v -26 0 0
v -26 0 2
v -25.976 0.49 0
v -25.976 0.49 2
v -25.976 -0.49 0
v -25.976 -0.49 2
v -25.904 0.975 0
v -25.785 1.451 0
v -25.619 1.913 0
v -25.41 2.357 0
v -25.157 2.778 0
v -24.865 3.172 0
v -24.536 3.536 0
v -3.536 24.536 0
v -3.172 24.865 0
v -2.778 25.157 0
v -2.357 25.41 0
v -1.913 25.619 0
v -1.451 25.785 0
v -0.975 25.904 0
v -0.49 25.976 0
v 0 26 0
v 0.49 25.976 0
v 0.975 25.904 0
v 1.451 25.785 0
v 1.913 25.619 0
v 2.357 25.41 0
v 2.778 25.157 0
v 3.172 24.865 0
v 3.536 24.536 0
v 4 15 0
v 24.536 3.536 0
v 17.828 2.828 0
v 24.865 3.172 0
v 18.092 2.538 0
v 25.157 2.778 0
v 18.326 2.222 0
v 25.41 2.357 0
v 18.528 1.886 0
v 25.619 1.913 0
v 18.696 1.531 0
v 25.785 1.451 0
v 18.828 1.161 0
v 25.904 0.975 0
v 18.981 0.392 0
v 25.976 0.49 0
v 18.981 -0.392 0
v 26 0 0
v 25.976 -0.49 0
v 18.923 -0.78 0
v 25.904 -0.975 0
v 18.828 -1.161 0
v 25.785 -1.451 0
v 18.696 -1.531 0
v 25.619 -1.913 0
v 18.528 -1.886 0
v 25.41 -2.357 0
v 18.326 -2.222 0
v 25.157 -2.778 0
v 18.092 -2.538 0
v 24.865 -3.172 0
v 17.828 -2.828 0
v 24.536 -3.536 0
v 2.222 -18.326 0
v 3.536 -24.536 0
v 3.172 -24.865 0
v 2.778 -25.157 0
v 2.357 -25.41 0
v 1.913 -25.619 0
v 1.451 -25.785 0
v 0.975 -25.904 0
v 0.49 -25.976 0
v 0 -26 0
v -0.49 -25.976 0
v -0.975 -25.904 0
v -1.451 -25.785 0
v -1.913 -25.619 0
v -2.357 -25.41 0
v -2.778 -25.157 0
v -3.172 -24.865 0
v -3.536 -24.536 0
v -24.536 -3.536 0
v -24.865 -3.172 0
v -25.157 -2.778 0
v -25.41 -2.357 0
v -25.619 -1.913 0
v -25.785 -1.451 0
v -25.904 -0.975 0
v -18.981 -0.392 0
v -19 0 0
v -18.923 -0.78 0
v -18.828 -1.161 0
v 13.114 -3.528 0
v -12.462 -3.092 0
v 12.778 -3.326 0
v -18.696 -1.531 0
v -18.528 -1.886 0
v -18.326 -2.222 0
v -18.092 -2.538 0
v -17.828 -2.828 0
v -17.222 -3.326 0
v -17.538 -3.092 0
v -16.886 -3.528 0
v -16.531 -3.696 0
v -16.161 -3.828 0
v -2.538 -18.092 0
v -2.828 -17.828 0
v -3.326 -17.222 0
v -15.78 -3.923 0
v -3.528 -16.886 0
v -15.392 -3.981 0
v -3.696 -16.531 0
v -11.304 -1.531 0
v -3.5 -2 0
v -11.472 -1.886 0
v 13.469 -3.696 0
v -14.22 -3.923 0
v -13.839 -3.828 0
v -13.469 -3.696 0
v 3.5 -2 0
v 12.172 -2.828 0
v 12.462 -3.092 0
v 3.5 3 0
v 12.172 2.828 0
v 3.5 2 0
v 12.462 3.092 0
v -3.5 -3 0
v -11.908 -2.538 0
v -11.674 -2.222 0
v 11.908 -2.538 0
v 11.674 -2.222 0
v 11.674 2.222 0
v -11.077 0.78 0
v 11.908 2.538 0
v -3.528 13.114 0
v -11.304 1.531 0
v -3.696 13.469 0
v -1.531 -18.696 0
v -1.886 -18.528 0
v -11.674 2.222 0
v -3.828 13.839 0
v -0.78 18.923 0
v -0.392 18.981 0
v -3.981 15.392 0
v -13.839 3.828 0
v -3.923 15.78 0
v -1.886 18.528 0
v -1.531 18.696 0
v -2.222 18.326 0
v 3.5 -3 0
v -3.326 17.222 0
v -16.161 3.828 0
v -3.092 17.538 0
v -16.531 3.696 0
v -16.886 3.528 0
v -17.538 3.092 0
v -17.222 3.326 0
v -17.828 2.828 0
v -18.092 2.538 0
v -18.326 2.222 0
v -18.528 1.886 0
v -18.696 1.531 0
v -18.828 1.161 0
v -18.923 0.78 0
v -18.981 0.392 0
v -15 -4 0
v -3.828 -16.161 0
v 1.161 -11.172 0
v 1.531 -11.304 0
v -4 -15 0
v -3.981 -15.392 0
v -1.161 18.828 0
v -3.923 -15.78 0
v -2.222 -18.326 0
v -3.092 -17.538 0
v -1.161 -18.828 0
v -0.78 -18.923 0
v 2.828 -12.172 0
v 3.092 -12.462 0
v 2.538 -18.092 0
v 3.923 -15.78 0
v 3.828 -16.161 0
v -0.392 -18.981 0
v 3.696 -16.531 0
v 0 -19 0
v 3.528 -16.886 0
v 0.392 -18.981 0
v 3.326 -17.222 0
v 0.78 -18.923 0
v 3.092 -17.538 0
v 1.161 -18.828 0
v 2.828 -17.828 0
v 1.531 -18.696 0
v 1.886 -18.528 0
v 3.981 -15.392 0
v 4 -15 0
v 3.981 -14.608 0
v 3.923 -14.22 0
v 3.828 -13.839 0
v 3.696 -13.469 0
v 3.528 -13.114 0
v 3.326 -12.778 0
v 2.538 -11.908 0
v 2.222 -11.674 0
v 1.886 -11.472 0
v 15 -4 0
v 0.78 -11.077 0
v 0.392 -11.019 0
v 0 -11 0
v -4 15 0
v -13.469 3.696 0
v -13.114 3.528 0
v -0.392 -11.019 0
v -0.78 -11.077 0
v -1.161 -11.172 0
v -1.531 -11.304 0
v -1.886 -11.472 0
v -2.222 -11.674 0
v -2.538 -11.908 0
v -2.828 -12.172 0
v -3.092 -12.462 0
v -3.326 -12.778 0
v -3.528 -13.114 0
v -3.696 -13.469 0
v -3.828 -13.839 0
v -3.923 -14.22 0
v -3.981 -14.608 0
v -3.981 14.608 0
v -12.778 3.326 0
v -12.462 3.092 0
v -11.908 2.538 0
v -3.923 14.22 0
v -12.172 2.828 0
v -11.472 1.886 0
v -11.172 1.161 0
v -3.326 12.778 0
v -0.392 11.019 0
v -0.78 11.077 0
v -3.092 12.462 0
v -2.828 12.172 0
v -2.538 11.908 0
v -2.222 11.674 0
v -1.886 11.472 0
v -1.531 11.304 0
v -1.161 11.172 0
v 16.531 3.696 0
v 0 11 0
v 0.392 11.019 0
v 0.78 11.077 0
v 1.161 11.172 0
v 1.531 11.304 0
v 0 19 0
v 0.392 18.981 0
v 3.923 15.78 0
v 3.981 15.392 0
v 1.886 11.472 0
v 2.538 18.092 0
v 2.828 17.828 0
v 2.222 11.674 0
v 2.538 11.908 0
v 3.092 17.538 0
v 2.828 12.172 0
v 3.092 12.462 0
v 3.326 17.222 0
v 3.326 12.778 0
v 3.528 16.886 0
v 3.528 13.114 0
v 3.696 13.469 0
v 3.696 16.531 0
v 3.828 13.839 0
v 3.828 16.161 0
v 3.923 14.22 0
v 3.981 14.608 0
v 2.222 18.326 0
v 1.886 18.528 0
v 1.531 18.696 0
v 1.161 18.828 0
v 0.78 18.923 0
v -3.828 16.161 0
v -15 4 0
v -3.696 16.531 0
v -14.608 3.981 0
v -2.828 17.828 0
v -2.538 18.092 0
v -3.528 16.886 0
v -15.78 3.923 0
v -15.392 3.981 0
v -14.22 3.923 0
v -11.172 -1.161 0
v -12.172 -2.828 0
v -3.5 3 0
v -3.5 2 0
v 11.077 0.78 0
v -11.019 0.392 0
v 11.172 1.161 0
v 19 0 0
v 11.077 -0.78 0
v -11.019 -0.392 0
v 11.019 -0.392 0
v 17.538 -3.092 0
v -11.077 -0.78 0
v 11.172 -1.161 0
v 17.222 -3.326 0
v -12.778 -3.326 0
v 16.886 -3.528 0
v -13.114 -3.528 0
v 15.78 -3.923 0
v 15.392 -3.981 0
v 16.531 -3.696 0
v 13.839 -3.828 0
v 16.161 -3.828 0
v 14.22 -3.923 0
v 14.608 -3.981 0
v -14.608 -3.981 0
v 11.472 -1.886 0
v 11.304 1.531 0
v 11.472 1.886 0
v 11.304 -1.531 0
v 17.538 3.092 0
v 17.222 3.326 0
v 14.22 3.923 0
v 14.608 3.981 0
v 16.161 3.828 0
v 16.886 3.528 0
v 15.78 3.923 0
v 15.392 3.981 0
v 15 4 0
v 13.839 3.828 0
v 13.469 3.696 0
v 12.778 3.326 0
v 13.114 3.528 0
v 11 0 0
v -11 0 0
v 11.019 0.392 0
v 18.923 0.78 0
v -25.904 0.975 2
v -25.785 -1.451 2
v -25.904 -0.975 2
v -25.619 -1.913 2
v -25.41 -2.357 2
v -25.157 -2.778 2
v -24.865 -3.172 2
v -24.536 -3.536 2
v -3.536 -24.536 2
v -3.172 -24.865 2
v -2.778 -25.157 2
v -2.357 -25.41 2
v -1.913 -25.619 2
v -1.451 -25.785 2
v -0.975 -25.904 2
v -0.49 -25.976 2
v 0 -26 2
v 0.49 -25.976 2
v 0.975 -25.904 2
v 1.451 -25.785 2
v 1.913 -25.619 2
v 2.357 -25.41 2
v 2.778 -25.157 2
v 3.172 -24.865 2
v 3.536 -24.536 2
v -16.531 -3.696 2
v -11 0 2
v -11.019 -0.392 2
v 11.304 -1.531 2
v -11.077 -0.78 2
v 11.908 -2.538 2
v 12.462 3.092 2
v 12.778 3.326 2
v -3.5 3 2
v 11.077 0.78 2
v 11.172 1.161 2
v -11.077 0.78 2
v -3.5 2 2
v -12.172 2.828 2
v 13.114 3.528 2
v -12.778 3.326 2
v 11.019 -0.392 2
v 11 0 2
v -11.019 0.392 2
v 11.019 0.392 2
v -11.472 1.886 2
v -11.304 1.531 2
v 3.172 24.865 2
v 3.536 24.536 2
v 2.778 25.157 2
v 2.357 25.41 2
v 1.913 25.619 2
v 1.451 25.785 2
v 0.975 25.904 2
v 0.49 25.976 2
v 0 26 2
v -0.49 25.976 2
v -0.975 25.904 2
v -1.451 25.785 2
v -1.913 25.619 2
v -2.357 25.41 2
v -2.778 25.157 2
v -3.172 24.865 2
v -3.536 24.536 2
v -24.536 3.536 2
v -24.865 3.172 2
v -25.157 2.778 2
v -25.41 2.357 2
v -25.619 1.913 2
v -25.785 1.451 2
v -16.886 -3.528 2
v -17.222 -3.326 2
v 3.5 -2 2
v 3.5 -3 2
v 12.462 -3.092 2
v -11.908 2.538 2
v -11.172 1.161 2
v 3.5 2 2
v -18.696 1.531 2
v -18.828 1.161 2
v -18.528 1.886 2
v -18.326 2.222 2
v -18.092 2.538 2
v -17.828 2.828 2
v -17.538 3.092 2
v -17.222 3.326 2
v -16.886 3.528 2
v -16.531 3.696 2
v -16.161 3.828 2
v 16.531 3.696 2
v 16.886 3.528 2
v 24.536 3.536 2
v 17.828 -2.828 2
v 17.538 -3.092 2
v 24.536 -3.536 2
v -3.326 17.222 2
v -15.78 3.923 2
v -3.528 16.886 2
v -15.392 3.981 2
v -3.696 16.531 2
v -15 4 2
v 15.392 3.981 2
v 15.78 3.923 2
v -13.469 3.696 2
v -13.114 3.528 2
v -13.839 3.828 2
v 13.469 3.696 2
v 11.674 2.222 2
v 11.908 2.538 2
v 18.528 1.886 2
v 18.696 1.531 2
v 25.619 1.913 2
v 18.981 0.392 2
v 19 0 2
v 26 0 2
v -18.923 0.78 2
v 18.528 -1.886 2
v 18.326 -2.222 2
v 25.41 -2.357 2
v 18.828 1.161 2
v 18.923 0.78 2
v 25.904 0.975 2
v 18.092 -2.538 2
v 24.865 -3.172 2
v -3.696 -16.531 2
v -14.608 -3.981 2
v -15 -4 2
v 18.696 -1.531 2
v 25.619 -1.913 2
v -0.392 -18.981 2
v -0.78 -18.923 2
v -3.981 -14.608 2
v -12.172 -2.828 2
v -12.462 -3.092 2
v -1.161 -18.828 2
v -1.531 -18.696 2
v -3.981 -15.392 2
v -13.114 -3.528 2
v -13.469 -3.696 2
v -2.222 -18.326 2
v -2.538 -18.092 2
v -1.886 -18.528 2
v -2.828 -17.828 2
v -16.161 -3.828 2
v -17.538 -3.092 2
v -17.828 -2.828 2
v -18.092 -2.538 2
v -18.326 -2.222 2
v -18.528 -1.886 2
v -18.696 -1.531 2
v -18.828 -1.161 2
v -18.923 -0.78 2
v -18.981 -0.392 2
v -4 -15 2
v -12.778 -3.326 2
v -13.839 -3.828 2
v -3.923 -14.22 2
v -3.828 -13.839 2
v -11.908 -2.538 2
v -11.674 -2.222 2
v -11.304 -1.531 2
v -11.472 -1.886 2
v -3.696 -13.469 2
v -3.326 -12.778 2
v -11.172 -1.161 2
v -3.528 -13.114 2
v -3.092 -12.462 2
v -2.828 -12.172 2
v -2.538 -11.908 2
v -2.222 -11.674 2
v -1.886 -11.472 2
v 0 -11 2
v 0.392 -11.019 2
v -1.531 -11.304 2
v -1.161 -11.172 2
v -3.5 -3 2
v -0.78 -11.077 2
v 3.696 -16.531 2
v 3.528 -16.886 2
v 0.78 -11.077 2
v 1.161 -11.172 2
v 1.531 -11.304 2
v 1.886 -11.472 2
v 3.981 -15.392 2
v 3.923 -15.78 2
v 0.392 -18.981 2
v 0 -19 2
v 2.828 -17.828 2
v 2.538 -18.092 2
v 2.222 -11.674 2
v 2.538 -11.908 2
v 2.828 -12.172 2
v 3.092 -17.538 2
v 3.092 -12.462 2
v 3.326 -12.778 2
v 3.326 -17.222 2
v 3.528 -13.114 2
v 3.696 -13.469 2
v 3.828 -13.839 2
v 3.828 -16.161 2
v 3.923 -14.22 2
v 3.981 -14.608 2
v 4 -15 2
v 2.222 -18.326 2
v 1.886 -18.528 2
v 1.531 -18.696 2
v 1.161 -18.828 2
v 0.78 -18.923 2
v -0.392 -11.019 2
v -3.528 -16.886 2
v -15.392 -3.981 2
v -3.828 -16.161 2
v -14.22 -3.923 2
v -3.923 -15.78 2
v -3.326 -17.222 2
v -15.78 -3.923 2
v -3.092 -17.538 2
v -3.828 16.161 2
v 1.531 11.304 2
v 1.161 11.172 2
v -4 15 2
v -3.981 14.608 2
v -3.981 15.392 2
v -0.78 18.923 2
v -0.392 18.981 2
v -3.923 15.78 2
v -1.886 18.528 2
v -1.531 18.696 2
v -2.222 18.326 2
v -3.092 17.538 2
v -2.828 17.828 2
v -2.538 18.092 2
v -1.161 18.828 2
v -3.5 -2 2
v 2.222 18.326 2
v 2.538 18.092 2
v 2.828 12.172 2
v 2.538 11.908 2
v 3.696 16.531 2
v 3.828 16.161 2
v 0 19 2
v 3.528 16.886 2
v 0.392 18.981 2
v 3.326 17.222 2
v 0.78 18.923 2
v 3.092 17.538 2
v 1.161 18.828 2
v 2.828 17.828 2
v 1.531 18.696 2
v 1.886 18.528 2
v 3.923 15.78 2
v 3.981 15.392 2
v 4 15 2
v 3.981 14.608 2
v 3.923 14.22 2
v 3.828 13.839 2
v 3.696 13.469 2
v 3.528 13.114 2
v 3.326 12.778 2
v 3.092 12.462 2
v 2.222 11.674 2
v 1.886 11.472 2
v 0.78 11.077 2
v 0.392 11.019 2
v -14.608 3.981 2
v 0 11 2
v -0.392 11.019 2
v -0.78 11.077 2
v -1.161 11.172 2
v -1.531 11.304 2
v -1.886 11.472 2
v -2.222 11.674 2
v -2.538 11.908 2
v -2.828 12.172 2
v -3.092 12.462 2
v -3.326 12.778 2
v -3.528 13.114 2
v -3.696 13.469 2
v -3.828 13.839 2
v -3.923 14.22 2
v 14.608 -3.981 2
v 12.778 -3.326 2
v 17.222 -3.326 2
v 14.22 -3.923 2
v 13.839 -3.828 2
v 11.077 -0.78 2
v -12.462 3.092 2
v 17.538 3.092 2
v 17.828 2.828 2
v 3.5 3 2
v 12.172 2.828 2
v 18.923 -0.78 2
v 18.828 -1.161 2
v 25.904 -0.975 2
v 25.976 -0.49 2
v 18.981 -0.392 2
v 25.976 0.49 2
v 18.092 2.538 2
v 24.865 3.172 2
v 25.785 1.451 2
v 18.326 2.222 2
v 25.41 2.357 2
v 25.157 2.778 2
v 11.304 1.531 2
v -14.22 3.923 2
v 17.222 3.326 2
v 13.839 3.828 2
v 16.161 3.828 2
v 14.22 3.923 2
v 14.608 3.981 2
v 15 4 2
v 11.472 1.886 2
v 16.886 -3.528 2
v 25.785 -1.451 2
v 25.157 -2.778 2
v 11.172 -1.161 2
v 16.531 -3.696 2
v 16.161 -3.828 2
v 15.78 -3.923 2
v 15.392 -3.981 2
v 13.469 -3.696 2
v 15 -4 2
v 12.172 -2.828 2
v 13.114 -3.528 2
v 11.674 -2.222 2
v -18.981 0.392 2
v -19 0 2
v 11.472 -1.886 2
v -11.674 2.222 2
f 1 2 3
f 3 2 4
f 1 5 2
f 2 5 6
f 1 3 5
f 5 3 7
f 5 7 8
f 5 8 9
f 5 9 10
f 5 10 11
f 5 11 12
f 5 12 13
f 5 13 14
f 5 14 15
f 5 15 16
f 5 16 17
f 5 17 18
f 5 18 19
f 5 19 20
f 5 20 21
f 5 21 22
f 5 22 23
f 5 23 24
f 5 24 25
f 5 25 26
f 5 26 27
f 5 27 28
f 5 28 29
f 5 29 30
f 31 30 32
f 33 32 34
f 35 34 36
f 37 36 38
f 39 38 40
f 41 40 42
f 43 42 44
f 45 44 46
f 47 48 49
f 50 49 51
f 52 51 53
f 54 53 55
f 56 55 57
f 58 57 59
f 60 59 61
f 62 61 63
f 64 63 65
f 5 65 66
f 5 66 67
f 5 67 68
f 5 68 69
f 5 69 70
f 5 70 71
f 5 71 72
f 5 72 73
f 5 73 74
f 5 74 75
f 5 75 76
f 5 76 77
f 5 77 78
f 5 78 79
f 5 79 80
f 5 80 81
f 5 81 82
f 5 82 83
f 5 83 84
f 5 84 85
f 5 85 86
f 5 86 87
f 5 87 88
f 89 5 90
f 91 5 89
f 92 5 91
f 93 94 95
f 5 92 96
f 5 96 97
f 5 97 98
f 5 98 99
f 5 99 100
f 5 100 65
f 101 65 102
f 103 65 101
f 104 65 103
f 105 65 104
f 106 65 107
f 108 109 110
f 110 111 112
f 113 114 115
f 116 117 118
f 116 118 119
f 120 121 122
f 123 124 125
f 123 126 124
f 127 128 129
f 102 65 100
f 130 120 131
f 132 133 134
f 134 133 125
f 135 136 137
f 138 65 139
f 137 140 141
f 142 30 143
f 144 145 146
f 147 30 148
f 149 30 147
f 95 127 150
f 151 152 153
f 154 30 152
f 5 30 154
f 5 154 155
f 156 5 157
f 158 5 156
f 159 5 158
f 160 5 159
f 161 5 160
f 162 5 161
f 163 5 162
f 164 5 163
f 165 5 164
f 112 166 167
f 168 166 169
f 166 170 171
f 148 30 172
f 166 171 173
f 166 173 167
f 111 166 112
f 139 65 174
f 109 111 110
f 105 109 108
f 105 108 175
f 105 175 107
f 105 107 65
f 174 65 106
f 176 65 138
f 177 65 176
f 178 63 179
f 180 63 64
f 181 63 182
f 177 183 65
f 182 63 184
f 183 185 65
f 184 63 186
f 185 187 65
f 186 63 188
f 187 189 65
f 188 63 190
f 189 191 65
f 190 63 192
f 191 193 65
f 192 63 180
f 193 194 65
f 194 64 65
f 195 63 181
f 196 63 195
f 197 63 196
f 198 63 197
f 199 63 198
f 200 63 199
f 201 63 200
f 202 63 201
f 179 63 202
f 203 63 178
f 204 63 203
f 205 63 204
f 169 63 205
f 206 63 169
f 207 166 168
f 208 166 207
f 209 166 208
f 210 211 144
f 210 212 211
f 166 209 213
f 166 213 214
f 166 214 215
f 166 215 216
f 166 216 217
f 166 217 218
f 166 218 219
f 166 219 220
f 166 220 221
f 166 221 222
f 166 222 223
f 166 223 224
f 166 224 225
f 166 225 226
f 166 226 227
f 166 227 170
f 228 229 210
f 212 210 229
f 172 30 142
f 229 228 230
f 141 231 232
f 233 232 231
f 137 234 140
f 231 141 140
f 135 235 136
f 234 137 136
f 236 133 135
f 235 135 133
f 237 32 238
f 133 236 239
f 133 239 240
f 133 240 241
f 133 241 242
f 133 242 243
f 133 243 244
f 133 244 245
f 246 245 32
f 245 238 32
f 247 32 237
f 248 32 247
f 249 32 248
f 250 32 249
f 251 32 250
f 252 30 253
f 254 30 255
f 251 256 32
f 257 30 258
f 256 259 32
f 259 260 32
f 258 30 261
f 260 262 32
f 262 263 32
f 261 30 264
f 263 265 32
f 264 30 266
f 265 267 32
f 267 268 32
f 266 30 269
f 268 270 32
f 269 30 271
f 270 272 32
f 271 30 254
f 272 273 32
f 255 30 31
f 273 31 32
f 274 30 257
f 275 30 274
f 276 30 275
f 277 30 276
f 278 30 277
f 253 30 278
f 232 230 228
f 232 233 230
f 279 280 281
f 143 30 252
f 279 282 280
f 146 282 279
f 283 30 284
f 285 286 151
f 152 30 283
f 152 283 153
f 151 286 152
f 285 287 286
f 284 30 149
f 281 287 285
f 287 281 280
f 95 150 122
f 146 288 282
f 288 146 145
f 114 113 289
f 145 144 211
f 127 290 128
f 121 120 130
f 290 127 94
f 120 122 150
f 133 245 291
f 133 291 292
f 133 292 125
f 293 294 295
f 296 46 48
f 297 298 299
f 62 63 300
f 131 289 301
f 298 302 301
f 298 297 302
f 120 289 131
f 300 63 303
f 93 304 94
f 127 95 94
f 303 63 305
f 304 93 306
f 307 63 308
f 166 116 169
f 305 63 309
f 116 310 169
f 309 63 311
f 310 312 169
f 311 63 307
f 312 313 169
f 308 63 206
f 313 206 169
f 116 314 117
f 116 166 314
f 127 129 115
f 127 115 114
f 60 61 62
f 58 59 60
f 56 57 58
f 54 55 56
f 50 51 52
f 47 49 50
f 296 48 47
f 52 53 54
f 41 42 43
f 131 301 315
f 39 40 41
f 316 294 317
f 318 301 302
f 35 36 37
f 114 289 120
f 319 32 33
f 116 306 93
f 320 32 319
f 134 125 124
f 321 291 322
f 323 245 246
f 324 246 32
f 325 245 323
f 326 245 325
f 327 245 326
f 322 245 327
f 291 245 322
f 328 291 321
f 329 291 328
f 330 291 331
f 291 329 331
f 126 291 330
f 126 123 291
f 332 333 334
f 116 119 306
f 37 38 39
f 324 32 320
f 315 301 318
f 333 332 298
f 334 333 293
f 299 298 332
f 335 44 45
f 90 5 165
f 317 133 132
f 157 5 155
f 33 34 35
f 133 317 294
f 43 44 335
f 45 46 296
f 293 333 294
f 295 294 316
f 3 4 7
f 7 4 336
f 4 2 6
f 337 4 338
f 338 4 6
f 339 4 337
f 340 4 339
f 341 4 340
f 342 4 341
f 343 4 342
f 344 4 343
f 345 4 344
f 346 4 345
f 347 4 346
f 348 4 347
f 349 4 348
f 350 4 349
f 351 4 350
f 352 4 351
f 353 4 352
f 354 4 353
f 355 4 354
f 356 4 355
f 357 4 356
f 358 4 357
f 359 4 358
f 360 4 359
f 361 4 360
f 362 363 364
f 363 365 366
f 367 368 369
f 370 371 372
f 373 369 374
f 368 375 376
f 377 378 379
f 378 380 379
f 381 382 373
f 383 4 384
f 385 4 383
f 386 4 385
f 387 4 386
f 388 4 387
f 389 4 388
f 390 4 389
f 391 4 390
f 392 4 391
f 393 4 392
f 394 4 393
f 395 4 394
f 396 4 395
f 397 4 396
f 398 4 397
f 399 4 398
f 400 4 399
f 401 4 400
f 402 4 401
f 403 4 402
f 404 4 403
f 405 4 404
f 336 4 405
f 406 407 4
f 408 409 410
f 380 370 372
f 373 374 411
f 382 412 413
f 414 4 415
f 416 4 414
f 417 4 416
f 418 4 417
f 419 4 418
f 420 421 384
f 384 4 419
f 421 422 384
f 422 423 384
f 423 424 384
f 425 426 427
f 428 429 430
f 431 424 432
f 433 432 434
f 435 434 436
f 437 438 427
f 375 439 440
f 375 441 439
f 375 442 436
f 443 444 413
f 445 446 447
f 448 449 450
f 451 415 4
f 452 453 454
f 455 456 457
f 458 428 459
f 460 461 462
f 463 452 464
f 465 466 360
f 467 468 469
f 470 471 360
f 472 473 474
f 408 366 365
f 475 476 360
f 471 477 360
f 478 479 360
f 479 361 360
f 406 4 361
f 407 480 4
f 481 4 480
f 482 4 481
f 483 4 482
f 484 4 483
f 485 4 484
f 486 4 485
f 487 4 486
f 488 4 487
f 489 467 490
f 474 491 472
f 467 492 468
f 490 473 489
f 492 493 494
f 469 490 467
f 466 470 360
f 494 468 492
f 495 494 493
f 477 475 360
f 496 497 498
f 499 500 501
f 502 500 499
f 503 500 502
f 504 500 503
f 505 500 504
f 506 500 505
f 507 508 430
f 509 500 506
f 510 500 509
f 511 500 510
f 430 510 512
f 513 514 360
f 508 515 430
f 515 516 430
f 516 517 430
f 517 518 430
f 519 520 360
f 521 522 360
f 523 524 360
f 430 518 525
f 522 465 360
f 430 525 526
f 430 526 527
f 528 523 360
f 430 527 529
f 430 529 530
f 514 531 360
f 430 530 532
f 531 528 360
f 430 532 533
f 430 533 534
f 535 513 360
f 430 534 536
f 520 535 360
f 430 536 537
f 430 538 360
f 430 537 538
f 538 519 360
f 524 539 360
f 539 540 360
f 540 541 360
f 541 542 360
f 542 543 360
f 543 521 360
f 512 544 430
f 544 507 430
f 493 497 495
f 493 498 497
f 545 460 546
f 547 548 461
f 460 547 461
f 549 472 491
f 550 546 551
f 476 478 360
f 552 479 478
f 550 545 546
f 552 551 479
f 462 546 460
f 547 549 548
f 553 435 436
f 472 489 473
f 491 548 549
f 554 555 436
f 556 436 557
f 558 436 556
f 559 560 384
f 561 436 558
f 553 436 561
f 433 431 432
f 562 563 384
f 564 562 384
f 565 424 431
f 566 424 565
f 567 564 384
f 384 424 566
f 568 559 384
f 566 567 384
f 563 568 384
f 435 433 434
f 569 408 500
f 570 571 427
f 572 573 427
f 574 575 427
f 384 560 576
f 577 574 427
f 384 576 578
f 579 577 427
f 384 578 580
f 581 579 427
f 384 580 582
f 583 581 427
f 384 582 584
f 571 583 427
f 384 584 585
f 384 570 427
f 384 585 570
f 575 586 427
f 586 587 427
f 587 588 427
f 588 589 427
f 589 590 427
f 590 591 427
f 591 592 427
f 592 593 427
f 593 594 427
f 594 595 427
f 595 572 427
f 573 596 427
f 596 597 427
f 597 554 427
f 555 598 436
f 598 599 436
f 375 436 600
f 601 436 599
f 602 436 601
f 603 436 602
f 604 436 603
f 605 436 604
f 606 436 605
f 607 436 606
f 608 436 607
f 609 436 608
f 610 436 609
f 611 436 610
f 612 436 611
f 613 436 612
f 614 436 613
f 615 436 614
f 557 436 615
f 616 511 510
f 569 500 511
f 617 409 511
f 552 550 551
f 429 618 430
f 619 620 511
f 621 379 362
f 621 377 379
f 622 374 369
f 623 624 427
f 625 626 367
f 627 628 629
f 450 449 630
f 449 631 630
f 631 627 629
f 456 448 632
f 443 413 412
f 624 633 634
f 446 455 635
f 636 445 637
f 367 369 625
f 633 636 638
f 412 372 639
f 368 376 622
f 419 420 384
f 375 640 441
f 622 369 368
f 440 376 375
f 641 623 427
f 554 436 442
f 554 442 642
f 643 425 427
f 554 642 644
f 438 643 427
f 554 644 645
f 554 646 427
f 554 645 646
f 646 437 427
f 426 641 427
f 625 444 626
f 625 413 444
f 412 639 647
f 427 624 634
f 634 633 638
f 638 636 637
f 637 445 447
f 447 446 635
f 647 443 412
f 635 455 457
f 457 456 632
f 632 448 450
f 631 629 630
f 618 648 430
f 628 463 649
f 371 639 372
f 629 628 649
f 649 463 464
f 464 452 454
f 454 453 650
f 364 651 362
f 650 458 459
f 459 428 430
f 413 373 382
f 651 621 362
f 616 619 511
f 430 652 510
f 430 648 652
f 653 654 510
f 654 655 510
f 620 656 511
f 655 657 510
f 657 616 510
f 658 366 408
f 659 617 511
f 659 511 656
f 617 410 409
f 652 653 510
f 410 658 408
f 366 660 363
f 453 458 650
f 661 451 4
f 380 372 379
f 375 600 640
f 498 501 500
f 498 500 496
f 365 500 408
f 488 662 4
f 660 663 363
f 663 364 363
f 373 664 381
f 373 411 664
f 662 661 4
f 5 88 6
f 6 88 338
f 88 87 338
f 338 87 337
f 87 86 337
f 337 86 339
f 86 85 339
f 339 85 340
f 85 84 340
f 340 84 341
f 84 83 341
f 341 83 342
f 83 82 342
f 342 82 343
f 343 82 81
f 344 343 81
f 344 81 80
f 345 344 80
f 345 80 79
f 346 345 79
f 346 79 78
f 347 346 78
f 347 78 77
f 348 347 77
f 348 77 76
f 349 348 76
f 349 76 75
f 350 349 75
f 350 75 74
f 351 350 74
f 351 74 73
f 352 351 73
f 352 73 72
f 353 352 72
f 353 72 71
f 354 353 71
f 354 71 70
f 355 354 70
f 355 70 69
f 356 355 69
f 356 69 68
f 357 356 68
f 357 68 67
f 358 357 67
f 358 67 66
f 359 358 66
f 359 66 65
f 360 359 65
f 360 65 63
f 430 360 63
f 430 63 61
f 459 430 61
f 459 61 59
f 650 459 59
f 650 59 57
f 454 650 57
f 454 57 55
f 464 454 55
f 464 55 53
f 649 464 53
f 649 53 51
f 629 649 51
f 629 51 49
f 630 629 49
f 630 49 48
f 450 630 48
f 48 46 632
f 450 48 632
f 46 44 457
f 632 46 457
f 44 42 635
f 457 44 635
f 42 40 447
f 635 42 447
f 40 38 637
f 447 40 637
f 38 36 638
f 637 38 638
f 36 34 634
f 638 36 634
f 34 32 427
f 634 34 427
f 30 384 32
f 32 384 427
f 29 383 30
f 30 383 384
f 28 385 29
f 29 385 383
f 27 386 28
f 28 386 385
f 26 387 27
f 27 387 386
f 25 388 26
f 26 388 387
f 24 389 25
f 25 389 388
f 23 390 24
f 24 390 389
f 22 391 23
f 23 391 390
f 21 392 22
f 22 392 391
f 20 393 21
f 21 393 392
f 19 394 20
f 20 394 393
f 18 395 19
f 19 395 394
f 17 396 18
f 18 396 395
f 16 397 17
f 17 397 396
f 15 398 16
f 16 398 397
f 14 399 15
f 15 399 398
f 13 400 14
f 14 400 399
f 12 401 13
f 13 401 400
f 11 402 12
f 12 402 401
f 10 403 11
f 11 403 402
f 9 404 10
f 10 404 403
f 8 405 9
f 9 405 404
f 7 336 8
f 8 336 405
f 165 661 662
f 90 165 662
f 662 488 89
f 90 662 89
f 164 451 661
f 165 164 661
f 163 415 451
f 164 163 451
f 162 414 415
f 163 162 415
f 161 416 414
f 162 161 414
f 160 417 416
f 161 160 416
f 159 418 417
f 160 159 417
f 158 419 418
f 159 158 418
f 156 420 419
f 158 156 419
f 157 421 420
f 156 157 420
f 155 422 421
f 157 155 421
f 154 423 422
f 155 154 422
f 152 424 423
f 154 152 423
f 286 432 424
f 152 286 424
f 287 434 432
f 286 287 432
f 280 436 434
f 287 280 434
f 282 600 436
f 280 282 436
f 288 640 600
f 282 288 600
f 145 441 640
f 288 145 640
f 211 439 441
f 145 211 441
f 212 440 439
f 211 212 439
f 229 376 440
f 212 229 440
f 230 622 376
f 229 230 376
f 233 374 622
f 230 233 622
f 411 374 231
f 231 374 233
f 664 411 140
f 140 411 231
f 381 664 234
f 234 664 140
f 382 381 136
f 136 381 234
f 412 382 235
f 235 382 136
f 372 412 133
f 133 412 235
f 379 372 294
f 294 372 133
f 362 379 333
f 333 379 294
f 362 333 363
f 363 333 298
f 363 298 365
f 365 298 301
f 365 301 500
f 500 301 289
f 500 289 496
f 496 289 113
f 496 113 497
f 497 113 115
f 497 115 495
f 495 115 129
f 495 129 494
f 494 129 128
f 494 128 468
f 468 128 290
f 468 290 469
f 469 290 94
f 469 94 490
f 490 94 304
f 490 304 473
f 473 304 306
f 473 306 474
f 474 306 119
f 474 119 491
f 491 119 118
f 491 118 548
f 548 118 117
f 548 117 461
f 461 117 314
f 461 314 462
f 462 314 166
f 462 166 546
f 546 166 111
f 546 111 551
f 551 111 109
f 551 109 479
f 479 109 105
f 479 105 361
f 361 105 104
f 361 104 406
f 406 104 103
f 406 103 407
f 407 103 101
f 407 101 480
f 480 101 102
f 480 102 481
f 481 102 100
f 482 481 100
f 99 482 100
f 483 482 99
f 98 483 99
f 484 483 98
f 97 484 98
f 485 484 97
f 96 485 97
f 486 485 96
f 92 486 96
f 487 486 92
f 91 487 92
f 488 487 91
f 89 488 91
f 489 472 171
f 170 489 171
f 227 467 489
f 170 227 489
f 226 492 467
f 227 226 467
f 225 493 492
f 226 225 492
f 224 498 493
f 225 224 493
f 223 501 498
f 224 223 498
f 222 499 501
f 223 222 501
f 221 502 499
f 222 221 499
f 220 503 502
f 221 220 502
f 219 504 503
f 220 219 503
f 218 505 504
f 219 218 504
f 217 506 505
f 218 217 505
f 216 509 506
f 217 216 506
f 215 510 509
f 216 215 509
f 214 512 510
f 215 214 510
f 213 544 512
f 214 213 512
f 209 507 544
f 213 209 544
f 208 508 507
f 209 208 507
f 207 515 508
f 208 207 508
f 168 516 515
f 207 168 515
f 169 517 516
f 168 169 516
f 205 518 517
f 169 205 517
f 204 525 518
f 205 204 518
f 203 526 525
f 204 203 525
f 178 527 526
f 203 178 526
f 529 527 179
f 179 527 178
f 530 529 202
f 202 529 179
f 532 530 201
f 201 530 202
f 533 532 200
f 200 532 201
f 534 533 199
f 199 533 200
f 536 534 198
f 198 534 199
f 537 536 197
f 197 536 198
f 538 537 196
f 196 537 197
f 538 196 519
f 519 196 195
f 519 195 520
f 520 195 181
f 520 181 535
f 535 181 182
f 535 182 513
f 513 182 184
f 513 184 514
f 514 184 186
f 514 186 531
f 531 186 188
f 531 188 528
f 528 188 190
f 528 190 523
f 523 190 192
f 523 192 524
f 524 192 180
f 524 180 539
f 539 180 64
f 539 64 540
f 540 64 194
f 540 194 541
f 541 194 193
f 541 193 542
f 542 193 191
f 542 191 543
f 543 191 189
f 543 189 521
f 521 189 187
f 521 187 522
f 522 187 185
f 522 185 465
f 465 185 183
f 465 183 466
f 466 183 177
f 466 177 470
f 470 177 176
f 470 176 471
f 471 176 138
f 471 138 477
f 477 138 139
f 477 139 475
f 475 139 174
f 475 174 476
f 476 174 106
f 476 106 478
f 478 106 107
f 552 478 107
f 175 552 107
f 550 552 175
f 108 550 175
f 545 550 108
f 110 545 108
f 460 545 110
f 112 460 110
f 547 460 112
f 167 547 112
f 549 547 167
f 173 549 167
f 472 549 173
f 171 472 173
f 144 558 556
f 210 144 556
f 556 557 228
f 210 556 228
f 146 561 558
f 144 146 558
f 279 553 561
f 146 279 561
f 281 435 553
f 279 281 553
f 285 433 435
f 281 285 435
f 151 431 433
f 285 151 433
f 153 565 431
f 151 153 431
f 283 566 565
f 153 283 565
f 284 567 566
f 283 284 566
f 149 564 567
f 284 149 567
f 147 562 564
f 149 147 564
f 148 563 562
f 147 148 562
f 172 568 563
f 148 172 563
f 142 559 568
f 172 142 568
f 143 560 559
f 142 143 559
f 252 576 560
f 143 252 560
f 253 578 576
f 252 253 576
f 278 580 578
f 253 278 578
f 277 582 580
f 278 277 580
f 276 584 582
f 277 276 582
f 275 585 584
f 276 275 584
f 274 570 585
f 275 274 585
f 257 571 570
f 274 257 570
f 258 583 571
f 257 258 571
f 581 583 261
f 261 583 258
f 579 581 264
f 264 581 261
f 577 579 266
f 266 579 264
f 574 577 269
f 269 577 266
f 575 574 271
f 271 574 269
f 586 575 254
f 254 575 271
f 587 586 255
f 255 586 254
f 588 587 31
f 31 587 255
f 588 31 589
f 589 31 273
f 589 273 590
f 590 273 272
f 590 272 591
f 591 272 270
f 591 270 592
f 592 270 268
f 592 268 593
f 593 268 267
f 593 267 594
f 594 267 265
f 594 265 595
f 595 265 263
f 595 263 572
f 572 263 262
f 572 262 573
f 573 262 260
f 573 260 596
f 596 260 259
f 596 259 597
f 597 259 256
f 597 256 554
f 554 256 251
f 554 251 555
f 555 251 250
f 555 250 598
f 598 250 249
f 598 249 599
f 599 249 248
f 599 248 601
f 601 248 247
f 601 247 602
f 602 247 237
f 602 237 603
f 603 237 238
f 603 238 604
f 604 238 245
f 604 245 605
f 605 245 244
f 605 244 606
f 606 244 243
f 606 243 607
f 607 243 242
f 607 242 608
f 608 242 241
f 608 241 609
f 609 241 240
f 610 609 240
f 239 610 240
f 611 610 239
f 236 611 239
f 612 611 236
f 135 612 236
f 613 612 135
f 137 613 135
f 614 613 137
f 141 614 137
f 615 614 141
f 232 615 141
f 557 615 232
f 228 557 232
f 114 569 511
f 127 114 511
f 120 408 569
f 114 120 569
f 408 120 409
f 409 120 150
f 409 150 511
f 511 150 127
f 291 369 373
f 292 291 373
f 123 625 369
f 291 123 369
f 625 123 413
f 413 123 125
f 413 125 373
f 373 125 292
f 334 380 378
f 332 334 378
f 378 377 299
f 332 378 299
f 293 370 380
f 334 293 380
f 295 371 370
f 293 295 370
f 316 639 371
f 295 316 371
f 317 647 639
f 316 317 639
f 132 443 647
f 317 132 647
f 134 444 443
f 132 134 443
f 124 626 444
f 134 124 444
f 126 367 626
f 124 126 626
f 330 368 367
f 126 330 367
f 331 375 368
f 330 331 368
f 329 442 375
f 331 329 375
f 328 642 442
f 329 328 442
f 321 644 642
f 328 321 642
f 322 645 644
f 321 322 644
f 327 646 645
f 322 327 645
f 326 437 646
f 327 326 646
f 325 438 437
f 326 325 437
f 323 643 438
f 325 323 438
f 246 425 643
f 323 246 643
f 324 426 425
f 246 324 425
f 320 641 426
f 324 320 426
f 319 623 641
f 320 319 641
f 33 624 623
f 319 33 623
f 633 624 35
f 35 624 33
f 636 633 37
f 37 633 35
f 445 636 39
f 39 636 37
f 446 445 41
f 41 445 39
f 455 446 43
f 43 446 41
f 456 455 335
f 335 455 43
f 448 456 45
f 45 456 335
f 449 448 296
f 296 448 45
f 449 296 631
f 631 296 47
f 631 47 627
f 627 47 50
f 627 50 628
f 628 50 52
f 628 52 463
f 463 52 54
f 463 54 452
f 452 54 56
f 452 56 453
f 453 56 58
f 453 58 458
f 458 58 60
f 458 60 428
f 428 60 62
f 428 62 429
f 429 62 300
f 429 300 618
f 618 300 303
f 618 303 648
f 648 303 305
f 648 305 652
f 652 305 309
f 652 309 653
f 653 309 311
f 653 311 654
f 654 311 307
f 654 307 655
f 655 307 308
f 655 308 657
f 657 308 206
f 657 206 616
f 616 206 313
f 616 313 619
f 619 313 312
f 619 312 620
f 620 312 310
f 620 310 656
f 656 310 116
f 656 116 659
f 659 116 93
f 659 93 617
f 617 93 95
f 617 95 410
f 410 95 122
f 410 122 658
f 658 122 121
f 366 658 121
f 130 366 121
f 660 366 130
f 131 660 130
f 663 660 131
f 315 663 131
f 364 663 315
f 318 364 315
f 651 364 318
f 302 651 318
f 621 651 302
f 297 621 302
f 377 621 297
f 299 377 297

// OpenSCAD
module FanJoiner(screwRadius=4, screwSpread=15, height=2, width=10, fn=64)
{
    extra = screwRadius * 1.5;
    difference()
    {
        // Main shape - square with rounded corners
        hull()
        {
            translate([0, -screwSpread - extra, 0]) cylinder(r=width/2, h=height, $fn=fn);
            translate([0,  screwSpread + extra, 0]) cylinder(r=width/2, h=height, $fn=fn);
            translate([-screwSpread - extra, 0, 0]) cylinder(r=width/2, h=height, $fn=fn);
            translate([ screwSpread + extra, 0, 0]) cylinder(r=width/2, h=height, $fn=fn);
        }

        // Screw holes
        translate([0, -screwSpread, -height]) cylinder(r=screwRadius, h=height*3, $fn=fn);
        translate([0,  screwSpread, -height]) cylinder(r=screwRadius, h=height*3, $fn=fn);
        translate([-screwSpread, 0, -height]) cylinder(r=screwRadius, h=height*3, $fn=fn);
        translate([ screwSpread, 0, -height]) cylinder(r=screwRadius, h=height*3, $fn=fn);

        // Slots for cable tie
        translate([0, -width/4, 0]) cube([width*0.7, 1, height*3], center=true);
        translate([0,  width/4, 0]) cube([width*0.7, 1, height*3], center=true);
    }
}

FanJoiner();
